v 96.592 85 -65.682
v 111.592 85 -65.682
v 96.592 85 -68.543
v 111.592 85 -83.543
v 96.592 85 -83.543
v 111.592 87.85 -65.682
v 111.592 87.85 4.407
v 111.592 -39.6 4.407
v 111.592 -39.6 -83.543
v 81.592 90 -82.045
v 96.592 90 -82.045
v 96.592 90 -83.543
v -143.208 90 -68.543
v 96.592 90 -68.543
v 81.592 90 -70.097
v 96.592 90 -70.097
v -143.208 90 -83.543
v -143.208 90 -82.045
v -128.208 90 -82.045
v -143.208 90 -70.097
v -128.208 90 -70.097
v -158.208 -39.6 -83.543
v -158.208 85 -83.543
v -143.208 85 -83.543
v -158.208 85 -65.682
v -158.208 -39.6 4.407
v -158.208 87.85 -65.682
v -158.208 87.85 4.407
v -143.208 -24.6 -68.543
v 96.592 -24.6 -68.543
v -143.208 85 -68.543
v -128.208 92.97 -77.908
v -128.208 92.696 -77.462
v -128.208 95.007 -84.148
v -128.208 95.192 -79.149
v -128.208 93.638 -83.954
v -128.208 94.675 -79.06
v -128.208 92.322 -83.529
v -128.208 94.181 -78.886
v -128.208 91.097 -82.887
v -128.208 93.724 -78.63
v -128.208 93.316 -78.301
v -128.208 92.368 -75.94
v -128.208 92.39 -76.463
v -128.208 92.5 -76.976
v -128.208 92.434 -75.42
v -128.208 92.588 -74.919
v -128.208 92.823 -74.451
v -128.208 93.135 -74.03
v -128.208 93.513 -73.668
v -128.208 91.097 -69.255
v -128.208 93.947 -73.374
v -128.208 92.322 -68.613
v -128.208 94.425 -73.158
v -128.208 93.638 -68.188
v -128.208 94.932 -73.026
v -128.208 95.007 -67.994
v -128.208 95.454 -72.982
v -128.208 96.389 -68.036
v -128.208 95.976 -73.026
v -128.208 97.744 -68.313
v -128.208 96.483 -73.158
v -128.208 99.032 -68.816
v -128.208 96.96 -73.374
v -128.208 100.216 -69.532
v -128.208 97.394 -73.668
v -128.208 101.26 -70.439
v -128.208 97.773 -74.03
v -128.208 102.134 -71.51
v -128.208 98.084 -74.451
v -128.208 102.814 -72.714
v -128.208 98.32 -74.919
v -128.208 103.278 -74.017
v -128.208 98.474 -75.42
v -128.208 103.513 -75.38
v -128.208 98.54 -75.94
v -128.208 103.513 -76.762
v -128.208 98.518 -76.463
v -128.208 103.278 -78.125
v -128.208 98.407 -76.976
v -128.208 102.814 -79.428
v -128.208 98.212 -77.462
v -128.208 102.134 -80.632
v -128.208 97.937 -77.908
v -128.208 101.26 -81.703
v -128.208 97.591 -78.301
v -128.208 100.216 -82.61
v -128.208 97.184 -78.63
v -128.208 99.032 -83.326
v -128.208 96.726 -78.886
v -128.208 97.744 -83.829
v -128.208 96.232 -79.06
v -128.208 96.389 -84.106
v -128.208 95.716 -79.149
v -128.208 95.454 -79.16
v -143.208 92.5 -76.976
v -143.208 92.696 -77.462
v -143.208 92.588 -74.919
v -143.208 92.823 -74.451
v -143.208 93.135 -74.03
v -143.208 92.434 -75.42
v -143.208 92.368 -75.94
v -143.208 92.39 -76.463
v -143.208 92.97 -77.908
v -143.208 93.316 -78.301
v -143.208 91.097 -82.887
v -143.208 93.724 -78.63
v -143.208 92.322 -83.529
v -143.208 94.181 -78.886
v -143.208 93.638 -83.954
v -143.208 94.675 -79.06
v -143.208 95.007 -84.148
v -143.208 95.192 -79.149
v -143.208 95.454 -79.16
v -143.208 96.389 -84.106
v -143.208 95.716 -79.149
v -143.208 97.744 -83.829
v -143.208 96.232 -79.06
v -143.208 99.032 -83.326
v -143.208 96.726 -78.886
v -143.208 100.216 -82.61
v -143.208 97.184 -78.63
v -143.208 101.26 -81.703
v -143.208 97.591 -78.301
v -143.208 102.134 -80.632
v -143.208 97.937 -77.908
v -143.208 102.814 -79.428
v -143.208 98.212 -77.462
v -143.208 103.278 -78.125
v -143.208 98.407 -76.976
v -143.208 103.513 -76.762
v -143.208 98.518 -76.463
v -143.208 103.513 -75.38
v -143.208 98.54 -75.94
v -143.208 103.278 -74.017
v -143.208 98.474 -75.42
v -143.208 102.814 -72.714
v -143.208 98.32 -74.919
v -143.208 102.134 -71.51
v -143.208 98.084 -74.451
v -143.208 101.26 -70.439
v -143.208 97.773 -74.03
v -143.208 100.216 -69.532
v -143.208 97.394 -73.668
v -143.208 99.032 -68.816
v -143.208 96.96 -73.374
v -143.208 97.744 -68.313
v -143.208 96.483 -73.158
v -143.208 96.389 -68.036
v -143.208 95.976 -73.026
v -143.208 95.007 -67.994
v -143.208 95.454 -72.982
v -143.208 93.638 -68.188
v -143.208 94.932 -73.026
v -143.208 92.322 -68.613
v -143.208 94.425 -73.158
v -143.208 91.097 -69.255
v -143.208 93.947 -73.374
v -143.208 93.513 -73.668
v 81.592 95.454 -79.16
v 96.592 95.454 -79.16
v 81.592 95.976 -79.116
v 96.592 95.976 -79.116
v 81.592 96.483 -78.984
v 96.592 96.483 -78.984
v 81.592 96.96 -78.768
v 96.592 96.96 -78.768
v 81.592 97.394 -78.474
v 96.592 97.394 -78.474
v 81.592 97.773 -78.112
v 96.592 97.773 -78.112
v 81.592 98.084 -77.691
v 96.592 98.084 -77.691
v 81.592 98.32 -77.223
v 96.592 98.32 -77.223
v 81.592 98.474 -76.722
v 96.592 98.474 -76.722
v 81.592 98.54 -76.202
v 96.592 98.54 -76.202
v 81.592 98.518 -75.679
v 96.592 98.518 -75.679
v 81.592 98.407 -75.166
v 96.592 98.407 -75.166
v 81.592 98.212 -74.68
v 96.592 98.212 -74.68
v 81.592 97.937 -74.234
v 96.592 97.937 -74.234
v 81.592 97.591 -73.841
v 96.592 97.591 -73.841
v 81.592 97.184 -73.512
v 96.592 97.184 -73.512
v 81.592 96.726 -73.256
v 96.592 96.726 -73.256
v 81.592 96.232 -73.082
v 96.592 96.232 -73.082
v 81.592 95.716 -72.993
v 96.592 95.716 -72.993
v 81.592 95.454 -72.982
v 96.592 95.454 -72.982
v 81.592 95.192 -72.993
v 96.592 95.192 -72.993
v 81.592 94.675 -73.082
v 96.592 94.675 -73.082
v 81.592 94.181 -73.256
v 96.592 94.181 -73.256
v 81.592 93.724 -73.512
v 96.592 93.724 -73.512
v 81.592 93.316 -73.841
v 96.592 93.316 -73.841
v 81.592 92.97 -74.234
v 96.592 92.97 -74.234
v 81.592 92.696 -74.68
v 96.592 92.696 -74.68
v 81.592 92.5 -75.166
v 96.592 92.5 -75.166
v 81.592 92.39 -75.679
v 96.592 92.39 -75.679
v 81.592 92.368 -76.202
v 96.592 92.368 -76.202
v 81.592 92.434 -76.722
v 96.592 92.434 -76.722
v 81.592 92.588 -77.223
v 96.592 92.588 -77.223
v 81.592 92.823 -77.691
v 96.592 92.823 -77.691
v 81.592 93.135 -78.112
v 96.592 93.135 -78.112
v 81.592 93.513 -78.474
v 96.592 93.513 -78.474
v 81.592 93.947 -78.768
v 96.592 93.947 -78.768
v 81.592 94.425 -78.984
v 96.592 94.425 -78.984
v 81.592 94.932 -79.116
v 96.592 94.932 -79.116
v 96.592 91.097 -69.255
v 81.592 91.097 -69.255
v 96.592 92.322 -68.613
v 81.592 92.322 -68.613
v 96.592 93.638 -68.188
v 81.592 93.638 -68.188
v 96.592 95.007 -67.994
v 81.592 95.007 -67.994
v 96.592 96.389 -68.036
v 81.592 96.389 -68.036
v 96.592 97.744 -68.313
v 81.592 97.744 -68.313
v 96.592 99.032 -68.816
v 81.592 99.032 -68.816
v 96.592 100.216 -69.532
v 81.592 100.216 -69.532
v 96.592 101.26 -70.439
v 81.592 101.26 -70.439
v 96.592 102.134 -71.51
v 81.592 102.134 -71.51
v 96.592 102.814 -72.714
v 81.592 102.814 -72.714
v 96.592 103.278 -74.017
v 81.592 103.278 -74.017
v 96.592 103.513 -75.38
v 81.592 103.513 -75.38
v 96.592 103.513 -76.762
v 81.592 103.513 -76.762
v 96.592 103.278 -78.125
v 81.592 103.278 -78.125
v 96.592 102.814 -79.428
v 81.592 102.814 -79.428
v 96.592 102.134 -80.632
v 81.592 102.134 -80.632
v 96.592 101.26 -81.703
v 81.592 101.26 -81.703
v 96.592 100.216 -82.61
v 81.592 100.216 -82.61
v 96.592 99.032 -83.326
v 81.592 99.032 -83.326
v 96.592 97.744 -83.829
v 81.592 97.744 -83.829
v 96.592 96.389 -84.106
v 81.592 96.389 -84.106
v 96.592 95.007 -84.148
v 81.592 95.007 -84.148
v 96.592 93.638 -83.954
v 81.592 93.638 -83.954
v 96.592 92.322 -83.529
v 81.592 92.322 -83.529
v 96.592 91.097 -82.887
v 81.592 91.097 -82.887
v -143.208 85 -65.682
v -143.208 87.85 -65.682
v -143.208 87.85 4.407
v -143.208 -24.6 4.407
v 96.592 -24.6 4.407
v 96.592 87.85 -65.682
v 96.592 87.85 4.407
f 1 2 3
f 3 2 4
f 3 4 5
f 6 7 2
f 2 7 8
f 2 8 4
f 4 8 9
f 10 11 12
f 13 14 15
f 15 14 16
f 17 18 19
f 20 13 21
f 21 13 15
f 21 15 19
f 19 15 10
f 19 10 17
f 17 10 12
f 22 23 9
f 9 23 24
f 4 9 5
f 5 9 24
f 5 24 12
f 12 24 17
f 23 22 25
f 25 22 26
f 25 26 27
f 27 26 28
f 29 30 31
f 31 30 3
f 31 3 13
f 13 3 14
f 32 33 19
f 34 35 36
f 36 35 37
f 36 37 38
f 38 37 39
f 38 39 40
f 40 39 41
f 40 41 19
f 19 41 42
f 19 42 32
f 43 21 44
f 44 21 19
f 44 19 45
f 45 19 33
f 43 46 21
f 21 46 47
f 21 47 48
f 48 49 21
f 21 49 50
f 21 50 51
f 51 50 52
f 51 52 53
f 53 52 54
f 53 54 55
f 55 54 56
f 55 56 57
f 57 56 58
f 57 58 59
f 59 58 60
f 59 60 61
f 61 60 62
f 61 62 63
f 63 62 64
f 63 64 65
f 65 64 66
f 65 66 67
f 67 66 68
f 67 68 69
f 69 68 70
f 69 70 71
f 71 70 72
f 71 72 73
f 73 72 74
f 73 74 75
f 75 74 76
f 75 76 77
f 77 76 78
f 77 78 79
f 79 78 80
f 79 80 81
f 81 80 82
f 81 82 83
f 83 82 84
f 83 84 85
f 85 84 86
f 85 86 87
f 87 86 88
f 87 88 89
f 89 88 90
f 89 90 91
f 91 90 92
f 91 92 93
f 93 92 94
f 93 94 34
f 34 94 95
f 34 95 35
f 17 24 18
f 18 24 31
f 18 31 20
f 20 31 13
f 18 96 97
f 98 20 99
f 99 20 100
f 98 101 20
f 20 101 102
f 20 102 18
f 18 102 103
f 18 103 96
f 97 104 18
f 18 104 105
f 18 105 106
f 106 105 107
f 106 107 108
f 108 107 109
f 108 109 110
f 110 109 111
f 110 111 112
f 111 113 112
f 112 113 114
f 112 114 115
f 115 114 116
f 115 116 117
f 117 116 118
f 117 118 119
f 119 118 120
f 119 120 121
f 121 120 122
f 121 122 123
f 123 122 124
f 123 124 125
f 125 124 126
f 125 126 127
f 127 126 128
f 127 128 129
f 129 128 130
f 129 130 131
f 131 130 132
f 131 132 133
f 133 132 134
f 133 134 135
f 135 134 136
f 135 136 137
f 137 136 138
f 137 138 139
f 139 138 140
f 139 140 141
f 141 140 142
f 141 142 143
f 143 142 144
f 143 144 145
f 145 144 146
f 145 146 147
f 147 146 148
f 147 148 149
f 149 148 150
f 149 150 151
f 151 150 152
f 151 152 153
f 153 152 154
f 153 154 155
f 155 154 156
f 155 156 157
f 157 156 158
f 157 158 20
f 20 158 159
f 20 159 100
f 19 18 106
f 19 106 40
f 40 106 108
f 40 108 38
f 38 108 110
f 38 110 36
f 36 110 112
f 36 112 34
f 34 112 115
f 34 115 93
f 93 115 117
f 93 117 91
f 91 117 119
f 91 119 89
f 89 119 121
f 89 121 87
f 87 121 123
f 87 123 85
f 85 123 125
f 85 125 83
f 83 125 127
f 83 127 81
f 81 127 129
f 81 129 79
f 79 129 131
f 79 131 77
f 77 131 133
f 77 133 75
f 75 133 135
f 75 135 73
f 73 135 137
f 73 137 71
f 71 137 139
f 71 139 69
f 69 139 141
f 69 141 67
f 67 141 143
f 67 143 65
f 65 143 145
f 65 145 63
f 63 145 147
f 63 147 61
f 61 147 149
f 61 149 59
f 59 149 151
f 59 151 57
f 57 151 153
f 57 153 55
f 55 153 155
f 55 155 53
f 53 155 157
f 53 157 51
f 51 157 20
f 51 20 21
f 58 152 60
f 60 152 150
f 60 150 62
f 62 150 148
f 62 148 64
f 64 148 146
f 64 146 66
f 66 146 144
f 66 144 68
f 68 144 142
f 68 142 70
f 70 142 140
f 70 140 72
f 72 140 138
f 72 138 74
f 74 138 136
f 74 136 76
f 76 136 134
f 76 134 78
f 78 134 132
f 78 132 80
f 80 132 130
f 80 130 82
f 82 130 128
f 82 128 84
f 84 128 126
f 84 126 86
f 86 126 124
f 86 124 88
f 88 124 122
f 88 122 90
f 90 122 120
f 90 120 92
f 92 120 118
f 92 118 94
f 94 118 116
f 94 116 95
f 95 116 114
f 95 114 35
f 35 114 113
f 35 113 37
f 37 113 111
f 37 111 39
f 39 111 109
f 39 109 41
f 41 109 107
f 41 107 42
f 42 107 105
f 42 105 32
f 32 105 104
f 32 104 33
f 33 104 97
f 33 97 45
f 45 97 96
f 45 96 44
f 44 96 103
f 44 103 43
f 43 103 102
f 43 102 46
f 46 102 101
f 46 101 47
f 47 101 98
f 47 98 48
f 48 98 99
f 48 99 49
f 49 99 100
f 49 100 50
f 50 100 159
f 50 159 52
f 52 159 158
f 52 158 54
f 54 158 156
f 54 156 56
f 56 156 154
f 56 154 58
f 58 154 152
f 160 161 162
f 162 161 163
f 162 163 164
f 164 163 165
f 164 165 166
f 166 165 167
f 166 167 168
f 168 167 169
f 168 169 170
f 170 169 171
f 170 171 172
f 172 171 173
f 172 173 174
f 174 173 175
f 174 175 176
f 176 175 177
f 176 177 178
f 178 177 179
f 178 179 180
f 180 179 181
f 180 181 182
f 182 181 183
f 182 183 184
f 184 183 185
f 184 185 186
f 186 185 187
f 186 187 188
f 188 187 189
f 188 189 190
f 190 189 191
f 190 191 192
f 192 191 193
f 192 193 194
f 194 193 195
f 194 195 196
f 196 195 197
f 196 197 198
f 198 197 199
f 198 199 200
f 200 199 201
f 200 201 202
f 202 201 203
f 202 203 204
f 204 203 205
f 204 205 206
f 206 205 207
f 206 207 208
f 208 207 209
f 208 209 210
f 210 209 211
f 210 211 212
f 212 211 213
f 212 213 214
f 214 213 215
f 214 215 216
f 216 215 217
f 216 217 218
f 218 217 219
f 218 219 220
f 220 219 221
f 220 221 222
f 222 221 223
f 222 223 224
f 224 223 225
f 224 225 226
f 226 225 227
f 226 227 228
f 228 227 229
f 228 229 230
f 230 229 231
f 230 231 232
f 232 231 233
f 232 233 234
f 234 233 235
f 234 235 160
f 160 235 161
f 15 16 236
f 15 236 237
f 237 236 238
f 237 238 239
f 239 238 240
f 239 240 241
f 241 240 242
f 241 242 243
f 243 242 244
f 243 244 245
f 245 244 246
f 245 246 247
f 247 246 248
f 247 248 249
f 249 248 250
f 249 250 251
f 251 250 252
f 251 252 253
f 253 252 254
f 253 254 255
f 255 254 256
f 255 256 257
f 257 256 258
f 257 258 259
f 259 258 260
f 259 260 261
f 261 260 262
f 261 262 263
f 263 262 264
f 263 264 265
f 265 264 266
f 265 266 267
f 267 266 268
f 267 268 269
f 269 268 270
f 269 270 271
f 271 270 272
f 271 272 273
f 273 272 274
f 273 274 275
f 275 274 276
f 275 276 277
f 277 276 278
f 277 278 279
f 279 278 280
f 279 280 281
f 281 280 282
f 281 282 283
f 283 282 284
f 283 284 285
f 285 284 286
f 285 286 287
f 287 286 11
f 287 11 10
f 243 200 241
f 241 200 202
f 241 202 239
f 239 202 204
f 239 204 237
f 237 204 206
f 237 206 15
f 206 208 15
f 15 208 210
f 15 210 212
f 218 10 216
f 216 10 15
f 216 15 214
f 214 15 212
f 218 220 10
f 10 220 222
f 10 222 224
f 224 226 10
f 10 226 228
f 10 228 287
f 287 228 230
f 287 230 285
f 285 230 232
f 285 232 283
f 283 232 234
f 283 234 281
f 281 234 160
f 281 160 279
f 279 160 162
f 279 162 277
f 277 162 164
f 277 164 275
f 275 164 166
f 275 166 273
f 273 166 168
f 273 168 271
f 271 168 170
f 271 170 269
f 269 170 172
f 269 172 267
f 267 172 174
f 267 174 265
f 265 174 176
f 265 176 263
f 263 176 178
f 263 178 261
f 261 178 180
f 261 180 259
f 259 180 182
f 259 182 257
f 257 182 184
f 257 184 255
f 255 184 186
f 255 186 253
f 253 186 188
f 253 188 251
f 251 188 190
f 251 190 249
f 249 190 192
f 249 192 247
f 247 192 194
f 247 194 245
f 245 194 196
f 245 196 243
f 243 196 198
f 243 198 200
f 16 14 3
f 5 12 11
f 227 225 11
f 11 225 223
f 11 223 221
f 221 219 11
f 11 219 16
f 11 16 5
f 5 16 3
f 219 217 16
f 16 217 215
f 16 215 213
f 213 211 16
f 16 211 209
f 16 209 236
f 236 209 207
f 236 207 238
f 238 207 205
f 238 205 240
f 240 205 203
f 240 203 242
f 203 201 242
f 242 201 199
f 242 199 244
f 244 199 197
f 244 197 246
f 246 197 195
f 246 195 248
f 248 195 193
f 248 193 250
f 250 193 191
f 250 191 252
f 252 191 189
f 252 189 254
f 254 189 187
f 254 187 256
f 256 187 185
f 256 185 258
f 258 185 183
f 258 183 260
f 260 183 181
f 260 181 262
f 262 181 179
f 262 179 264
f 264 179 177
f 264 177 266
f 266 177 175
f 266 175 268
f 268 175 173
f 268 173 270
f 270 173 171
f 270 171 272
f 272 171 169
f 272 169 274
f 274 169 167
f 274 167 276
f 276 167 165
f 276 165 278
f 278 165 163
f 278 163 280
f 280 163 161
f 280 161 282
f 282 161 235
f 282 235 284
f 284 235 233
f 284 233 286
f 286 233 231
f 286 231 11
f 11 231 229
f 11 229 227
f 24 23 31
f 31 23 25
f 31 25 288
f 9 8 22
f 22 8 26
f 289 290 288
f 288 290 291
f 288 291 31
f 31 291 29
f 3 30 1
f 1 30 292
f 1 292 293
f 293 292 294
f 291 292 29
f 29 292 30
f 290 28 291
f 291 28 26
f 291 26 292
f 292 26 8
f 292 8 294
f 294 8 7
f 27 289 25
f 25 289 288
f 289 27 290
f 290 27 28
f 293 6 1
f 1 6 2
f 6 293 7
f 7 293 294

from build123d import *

# Parameters (mm, degrees)
SKETCH1_W            = 269.8
SKETCH1_H            = 142.5
BOSS_EXTRUDE2_DEPTH  = 15
SKETCH2_W            = 239.8
SKETCH2_H            = 112.5
CUT_EXTRUDE1_DEPTH   = 5
BOSS_EXTRUDE3_DEPTH  = 75
SKETCH7_R            = 8.089056034
SKETCH7_R_2          = 3.089056034
BOSS_EXTRUDE4_DEPTH  = 15
BOSS_EXTRUDE5_DEPTH  = 15
SKETCH15_W           = 15
SKETCH15_H           = 15
CUT_EXTRUDE2_DEPTH   = 5
SKETCH16_W           = 269.8
SKETCH16_H           = 127.5
CUT_EXTRUDE3_DEPTH   = 49
SKETCH17_W           = 269.8
SKETCH17_H           = 15
BOSS_EXTRUDE6_DEPTH  = 39.6
BOSS_EXTRUDE8_DEPTH  = 72.95
SKETCH20_W           = 15
SKETCH20_H           = 70.089840249
BOSS_EXTRUDE9_DEPTH  = 2.85
SKETCH21_W           = 15
SKETCH21_H           = 70.0898402
BOSS_EXTRUDE10_DEPTH = 2.85


with BuildPart() as part:
    # Sketch1 → Boss-Extrude2 (new body)
    with BuildSketch(Plane(origin=(0, 0, 0), x_dir=(1, 0, 0), z_dir=(0, 1, 0))):
        with Locations((-23.308401977, 12.292504119)):
            Rectangle(SKETCH1_W, SKETCH1_H)
    extrude(amount=BOSS_EXTRUDE2_DEPTH)

    # Sketch2 → Cut-Extrude1 (cut)
    with BuildSketch(Plane(origin=(0, 15, 0), x_dir=(1, 0, 0), z_dir=(0, 1, 0))):
        with Locations((-23.308401977, 12.292504119)):
            Rectangle(SKETCH2_W, SKETCH2_H)
    extrude(amount=-CUT_EXTRUDE1_DEPTH, mode=Mode.SUBTRACT)

    # Sketch3 → Boss-Extrude3 (add)
    with BuildSketch(Plane(origin=(0, 15, 0), x_dir=(1, 0, 0), z_dir=(0, 1, 0))):
        Polygon((-143.208401977, 68.542504119), (-158.208401977, 68.542504119), (-158.208401977, 83.542504119), (111.591598023, 83.542504119), (111.591598023, 68.542504119), align=None)
    extrude(amount=BOSS_EXTRUDE3_DEPTH)

    # Sketch7 → Boss-Extrude4 (add)
    with BuildSketch(Plane(origin=(-143.208401977, 0, 0), x_dir=(0, 0, -1), z_dir=(1, 0, 0))):
        with Locations((76.070987498, 95.45383679)):
            Circle(SKETCH7_R)
        with Locations((76.070987498, 95.45383679)):
            Circle(SKETCH7_R_2, mode=Mode.SUBTRACT)
    extrude(amount=BOSS_EXTRUDE4_DEPTH)

    # Sketch12 → Boss-Extrude5 (add)
    with BuildSketch(Plane.ZY.offset(-96.591598023)):
        with BuildLine():
            ThreePointArc((-76.070987498, 103.542892824), (-84.160043532, 95.45383679), (-76.070987498, 87.364780756))
            Line((-76.070987498, 87.364780756), (-76.070987498, 92.364780756))
            ThreePointArc((-76.070987498, 92.364780756), (-79.160043532, 95.45383679), (-76.070987498, 98.542892824))
            Line((-76.070987498, 98.542892824), (-76.070987498, 103.542892824))
        make_face()
        with BuildLine():
            Line((-76.070987498, 92.364780756), (-76.070987498, 87.364780756))
            ThreePointArc((-76.070987498, 87.364780756), (-70.351161122, 89.734010415), (-67.981931463, 95.45383679))
            ThreePointArc((-67.981931463, 95.45383679), (-70.351161122, 101.173663165), (-76.070987498, 103.542892824))
            Line((-76.070987498, 103.542892824), (-76.070987498, 98.542892824))
            ThreePointArc((-76.070987498, 98.542892824), (-73.886695028, 97.638129259), (-72.981931463, 95.45383679))
            ThreePointArc((-72.981931463, 95.45383679), (-73.886695028, 93.269544321), (-76.070987498, 92.364780756))
        make_face()
    extrude(amount=BOSS_EXTRUDE5_DEPTH)

    # Sketch15 → Cut-Extrude2 (cut)
    with BuildSketch(Plane(origin=(0, 90, 0), x_dir=(1, 0, 0), z_dir=(0, 1, 0))):
        with Locations((-150.708401977, 76.042504119)):
            Rectangle(SKETCH15_W, SKETCH15_H)
        with Locations((104.091598023, 76.042504119)):
            Rectangle(SKETCH15_W, SKETCH15_H)
    extrude(amount=-CUT_EXTRUDE2_DEPTH, mode=Mode.SUBTRACT)

    # Sketch16 → Cut-Extrude3 (cut)
    with BuildSketch(Plane(origin=(0, 25, 0), x_dir=(1, 0, 0), z_dir=(0, 1, 0))):
        with Locations((-23.308401977, 4.792504119)):
            Rectangle(SKETCH16_W, SKETCH16_H)
    extrude(amount=-CUT_EXTRUDE3_DEPTH, mode=Mode.SUBTRACT)

    # Sketch17 → Boss-Extrude6 (add)
    with BuildSketch(Plane.XZ):
        with Locations((-23.308401977, -76.042504119)):
            Rectangle(SKETCH17_W, SKETCH17_H)
    extrude(amount=BOSS_EXTRUDE6_DEPTH)

    # Sketch19 → Boss-Extrude8 (add)
    with BuildSketch(Plane.XY.offset(-68.542504119)):
        Polygon((-158.208401977, 85), (-158.208401977, -39.6), (111.591598023, -39.6), (111.591598023, 85), (96.591598023, 85), (96.591598023, -24.6), (-143.208401977, -24.6), (-143.208401977, 85), align=None)
    extrude(amount=BOSS_EXTRUDE8_DEPTH)

    # Sketch20 → Boss-Extrude9 (add)
    with BuildSketch(Plane(origin=(0, 85, 0), x_dir=(1, 0, 0), z_dir=(0, 1, 0))):
        with Locations((-150.708401977, 30.637424243)):
            Rectangle(SKETCH20_W, SKETCH20_H)
    extrude(amount=BOSS_EXTRUDE9_DEPTH)

    # Sketch21 → Boss-Extrude10 (add)
    with BuildSketch(Plane(origin=(0, 85, 0), x_dir=(1, 0, 0), z_dir=(0, 1, 0))):
        with Locations((104.091598023, 30.637424219)):
            Rectangle(SKETCH21_W, SKETCH21_H)
    extrude(amount=BOSS_EXTRUDE10_DEPTH)


solid = part.part
